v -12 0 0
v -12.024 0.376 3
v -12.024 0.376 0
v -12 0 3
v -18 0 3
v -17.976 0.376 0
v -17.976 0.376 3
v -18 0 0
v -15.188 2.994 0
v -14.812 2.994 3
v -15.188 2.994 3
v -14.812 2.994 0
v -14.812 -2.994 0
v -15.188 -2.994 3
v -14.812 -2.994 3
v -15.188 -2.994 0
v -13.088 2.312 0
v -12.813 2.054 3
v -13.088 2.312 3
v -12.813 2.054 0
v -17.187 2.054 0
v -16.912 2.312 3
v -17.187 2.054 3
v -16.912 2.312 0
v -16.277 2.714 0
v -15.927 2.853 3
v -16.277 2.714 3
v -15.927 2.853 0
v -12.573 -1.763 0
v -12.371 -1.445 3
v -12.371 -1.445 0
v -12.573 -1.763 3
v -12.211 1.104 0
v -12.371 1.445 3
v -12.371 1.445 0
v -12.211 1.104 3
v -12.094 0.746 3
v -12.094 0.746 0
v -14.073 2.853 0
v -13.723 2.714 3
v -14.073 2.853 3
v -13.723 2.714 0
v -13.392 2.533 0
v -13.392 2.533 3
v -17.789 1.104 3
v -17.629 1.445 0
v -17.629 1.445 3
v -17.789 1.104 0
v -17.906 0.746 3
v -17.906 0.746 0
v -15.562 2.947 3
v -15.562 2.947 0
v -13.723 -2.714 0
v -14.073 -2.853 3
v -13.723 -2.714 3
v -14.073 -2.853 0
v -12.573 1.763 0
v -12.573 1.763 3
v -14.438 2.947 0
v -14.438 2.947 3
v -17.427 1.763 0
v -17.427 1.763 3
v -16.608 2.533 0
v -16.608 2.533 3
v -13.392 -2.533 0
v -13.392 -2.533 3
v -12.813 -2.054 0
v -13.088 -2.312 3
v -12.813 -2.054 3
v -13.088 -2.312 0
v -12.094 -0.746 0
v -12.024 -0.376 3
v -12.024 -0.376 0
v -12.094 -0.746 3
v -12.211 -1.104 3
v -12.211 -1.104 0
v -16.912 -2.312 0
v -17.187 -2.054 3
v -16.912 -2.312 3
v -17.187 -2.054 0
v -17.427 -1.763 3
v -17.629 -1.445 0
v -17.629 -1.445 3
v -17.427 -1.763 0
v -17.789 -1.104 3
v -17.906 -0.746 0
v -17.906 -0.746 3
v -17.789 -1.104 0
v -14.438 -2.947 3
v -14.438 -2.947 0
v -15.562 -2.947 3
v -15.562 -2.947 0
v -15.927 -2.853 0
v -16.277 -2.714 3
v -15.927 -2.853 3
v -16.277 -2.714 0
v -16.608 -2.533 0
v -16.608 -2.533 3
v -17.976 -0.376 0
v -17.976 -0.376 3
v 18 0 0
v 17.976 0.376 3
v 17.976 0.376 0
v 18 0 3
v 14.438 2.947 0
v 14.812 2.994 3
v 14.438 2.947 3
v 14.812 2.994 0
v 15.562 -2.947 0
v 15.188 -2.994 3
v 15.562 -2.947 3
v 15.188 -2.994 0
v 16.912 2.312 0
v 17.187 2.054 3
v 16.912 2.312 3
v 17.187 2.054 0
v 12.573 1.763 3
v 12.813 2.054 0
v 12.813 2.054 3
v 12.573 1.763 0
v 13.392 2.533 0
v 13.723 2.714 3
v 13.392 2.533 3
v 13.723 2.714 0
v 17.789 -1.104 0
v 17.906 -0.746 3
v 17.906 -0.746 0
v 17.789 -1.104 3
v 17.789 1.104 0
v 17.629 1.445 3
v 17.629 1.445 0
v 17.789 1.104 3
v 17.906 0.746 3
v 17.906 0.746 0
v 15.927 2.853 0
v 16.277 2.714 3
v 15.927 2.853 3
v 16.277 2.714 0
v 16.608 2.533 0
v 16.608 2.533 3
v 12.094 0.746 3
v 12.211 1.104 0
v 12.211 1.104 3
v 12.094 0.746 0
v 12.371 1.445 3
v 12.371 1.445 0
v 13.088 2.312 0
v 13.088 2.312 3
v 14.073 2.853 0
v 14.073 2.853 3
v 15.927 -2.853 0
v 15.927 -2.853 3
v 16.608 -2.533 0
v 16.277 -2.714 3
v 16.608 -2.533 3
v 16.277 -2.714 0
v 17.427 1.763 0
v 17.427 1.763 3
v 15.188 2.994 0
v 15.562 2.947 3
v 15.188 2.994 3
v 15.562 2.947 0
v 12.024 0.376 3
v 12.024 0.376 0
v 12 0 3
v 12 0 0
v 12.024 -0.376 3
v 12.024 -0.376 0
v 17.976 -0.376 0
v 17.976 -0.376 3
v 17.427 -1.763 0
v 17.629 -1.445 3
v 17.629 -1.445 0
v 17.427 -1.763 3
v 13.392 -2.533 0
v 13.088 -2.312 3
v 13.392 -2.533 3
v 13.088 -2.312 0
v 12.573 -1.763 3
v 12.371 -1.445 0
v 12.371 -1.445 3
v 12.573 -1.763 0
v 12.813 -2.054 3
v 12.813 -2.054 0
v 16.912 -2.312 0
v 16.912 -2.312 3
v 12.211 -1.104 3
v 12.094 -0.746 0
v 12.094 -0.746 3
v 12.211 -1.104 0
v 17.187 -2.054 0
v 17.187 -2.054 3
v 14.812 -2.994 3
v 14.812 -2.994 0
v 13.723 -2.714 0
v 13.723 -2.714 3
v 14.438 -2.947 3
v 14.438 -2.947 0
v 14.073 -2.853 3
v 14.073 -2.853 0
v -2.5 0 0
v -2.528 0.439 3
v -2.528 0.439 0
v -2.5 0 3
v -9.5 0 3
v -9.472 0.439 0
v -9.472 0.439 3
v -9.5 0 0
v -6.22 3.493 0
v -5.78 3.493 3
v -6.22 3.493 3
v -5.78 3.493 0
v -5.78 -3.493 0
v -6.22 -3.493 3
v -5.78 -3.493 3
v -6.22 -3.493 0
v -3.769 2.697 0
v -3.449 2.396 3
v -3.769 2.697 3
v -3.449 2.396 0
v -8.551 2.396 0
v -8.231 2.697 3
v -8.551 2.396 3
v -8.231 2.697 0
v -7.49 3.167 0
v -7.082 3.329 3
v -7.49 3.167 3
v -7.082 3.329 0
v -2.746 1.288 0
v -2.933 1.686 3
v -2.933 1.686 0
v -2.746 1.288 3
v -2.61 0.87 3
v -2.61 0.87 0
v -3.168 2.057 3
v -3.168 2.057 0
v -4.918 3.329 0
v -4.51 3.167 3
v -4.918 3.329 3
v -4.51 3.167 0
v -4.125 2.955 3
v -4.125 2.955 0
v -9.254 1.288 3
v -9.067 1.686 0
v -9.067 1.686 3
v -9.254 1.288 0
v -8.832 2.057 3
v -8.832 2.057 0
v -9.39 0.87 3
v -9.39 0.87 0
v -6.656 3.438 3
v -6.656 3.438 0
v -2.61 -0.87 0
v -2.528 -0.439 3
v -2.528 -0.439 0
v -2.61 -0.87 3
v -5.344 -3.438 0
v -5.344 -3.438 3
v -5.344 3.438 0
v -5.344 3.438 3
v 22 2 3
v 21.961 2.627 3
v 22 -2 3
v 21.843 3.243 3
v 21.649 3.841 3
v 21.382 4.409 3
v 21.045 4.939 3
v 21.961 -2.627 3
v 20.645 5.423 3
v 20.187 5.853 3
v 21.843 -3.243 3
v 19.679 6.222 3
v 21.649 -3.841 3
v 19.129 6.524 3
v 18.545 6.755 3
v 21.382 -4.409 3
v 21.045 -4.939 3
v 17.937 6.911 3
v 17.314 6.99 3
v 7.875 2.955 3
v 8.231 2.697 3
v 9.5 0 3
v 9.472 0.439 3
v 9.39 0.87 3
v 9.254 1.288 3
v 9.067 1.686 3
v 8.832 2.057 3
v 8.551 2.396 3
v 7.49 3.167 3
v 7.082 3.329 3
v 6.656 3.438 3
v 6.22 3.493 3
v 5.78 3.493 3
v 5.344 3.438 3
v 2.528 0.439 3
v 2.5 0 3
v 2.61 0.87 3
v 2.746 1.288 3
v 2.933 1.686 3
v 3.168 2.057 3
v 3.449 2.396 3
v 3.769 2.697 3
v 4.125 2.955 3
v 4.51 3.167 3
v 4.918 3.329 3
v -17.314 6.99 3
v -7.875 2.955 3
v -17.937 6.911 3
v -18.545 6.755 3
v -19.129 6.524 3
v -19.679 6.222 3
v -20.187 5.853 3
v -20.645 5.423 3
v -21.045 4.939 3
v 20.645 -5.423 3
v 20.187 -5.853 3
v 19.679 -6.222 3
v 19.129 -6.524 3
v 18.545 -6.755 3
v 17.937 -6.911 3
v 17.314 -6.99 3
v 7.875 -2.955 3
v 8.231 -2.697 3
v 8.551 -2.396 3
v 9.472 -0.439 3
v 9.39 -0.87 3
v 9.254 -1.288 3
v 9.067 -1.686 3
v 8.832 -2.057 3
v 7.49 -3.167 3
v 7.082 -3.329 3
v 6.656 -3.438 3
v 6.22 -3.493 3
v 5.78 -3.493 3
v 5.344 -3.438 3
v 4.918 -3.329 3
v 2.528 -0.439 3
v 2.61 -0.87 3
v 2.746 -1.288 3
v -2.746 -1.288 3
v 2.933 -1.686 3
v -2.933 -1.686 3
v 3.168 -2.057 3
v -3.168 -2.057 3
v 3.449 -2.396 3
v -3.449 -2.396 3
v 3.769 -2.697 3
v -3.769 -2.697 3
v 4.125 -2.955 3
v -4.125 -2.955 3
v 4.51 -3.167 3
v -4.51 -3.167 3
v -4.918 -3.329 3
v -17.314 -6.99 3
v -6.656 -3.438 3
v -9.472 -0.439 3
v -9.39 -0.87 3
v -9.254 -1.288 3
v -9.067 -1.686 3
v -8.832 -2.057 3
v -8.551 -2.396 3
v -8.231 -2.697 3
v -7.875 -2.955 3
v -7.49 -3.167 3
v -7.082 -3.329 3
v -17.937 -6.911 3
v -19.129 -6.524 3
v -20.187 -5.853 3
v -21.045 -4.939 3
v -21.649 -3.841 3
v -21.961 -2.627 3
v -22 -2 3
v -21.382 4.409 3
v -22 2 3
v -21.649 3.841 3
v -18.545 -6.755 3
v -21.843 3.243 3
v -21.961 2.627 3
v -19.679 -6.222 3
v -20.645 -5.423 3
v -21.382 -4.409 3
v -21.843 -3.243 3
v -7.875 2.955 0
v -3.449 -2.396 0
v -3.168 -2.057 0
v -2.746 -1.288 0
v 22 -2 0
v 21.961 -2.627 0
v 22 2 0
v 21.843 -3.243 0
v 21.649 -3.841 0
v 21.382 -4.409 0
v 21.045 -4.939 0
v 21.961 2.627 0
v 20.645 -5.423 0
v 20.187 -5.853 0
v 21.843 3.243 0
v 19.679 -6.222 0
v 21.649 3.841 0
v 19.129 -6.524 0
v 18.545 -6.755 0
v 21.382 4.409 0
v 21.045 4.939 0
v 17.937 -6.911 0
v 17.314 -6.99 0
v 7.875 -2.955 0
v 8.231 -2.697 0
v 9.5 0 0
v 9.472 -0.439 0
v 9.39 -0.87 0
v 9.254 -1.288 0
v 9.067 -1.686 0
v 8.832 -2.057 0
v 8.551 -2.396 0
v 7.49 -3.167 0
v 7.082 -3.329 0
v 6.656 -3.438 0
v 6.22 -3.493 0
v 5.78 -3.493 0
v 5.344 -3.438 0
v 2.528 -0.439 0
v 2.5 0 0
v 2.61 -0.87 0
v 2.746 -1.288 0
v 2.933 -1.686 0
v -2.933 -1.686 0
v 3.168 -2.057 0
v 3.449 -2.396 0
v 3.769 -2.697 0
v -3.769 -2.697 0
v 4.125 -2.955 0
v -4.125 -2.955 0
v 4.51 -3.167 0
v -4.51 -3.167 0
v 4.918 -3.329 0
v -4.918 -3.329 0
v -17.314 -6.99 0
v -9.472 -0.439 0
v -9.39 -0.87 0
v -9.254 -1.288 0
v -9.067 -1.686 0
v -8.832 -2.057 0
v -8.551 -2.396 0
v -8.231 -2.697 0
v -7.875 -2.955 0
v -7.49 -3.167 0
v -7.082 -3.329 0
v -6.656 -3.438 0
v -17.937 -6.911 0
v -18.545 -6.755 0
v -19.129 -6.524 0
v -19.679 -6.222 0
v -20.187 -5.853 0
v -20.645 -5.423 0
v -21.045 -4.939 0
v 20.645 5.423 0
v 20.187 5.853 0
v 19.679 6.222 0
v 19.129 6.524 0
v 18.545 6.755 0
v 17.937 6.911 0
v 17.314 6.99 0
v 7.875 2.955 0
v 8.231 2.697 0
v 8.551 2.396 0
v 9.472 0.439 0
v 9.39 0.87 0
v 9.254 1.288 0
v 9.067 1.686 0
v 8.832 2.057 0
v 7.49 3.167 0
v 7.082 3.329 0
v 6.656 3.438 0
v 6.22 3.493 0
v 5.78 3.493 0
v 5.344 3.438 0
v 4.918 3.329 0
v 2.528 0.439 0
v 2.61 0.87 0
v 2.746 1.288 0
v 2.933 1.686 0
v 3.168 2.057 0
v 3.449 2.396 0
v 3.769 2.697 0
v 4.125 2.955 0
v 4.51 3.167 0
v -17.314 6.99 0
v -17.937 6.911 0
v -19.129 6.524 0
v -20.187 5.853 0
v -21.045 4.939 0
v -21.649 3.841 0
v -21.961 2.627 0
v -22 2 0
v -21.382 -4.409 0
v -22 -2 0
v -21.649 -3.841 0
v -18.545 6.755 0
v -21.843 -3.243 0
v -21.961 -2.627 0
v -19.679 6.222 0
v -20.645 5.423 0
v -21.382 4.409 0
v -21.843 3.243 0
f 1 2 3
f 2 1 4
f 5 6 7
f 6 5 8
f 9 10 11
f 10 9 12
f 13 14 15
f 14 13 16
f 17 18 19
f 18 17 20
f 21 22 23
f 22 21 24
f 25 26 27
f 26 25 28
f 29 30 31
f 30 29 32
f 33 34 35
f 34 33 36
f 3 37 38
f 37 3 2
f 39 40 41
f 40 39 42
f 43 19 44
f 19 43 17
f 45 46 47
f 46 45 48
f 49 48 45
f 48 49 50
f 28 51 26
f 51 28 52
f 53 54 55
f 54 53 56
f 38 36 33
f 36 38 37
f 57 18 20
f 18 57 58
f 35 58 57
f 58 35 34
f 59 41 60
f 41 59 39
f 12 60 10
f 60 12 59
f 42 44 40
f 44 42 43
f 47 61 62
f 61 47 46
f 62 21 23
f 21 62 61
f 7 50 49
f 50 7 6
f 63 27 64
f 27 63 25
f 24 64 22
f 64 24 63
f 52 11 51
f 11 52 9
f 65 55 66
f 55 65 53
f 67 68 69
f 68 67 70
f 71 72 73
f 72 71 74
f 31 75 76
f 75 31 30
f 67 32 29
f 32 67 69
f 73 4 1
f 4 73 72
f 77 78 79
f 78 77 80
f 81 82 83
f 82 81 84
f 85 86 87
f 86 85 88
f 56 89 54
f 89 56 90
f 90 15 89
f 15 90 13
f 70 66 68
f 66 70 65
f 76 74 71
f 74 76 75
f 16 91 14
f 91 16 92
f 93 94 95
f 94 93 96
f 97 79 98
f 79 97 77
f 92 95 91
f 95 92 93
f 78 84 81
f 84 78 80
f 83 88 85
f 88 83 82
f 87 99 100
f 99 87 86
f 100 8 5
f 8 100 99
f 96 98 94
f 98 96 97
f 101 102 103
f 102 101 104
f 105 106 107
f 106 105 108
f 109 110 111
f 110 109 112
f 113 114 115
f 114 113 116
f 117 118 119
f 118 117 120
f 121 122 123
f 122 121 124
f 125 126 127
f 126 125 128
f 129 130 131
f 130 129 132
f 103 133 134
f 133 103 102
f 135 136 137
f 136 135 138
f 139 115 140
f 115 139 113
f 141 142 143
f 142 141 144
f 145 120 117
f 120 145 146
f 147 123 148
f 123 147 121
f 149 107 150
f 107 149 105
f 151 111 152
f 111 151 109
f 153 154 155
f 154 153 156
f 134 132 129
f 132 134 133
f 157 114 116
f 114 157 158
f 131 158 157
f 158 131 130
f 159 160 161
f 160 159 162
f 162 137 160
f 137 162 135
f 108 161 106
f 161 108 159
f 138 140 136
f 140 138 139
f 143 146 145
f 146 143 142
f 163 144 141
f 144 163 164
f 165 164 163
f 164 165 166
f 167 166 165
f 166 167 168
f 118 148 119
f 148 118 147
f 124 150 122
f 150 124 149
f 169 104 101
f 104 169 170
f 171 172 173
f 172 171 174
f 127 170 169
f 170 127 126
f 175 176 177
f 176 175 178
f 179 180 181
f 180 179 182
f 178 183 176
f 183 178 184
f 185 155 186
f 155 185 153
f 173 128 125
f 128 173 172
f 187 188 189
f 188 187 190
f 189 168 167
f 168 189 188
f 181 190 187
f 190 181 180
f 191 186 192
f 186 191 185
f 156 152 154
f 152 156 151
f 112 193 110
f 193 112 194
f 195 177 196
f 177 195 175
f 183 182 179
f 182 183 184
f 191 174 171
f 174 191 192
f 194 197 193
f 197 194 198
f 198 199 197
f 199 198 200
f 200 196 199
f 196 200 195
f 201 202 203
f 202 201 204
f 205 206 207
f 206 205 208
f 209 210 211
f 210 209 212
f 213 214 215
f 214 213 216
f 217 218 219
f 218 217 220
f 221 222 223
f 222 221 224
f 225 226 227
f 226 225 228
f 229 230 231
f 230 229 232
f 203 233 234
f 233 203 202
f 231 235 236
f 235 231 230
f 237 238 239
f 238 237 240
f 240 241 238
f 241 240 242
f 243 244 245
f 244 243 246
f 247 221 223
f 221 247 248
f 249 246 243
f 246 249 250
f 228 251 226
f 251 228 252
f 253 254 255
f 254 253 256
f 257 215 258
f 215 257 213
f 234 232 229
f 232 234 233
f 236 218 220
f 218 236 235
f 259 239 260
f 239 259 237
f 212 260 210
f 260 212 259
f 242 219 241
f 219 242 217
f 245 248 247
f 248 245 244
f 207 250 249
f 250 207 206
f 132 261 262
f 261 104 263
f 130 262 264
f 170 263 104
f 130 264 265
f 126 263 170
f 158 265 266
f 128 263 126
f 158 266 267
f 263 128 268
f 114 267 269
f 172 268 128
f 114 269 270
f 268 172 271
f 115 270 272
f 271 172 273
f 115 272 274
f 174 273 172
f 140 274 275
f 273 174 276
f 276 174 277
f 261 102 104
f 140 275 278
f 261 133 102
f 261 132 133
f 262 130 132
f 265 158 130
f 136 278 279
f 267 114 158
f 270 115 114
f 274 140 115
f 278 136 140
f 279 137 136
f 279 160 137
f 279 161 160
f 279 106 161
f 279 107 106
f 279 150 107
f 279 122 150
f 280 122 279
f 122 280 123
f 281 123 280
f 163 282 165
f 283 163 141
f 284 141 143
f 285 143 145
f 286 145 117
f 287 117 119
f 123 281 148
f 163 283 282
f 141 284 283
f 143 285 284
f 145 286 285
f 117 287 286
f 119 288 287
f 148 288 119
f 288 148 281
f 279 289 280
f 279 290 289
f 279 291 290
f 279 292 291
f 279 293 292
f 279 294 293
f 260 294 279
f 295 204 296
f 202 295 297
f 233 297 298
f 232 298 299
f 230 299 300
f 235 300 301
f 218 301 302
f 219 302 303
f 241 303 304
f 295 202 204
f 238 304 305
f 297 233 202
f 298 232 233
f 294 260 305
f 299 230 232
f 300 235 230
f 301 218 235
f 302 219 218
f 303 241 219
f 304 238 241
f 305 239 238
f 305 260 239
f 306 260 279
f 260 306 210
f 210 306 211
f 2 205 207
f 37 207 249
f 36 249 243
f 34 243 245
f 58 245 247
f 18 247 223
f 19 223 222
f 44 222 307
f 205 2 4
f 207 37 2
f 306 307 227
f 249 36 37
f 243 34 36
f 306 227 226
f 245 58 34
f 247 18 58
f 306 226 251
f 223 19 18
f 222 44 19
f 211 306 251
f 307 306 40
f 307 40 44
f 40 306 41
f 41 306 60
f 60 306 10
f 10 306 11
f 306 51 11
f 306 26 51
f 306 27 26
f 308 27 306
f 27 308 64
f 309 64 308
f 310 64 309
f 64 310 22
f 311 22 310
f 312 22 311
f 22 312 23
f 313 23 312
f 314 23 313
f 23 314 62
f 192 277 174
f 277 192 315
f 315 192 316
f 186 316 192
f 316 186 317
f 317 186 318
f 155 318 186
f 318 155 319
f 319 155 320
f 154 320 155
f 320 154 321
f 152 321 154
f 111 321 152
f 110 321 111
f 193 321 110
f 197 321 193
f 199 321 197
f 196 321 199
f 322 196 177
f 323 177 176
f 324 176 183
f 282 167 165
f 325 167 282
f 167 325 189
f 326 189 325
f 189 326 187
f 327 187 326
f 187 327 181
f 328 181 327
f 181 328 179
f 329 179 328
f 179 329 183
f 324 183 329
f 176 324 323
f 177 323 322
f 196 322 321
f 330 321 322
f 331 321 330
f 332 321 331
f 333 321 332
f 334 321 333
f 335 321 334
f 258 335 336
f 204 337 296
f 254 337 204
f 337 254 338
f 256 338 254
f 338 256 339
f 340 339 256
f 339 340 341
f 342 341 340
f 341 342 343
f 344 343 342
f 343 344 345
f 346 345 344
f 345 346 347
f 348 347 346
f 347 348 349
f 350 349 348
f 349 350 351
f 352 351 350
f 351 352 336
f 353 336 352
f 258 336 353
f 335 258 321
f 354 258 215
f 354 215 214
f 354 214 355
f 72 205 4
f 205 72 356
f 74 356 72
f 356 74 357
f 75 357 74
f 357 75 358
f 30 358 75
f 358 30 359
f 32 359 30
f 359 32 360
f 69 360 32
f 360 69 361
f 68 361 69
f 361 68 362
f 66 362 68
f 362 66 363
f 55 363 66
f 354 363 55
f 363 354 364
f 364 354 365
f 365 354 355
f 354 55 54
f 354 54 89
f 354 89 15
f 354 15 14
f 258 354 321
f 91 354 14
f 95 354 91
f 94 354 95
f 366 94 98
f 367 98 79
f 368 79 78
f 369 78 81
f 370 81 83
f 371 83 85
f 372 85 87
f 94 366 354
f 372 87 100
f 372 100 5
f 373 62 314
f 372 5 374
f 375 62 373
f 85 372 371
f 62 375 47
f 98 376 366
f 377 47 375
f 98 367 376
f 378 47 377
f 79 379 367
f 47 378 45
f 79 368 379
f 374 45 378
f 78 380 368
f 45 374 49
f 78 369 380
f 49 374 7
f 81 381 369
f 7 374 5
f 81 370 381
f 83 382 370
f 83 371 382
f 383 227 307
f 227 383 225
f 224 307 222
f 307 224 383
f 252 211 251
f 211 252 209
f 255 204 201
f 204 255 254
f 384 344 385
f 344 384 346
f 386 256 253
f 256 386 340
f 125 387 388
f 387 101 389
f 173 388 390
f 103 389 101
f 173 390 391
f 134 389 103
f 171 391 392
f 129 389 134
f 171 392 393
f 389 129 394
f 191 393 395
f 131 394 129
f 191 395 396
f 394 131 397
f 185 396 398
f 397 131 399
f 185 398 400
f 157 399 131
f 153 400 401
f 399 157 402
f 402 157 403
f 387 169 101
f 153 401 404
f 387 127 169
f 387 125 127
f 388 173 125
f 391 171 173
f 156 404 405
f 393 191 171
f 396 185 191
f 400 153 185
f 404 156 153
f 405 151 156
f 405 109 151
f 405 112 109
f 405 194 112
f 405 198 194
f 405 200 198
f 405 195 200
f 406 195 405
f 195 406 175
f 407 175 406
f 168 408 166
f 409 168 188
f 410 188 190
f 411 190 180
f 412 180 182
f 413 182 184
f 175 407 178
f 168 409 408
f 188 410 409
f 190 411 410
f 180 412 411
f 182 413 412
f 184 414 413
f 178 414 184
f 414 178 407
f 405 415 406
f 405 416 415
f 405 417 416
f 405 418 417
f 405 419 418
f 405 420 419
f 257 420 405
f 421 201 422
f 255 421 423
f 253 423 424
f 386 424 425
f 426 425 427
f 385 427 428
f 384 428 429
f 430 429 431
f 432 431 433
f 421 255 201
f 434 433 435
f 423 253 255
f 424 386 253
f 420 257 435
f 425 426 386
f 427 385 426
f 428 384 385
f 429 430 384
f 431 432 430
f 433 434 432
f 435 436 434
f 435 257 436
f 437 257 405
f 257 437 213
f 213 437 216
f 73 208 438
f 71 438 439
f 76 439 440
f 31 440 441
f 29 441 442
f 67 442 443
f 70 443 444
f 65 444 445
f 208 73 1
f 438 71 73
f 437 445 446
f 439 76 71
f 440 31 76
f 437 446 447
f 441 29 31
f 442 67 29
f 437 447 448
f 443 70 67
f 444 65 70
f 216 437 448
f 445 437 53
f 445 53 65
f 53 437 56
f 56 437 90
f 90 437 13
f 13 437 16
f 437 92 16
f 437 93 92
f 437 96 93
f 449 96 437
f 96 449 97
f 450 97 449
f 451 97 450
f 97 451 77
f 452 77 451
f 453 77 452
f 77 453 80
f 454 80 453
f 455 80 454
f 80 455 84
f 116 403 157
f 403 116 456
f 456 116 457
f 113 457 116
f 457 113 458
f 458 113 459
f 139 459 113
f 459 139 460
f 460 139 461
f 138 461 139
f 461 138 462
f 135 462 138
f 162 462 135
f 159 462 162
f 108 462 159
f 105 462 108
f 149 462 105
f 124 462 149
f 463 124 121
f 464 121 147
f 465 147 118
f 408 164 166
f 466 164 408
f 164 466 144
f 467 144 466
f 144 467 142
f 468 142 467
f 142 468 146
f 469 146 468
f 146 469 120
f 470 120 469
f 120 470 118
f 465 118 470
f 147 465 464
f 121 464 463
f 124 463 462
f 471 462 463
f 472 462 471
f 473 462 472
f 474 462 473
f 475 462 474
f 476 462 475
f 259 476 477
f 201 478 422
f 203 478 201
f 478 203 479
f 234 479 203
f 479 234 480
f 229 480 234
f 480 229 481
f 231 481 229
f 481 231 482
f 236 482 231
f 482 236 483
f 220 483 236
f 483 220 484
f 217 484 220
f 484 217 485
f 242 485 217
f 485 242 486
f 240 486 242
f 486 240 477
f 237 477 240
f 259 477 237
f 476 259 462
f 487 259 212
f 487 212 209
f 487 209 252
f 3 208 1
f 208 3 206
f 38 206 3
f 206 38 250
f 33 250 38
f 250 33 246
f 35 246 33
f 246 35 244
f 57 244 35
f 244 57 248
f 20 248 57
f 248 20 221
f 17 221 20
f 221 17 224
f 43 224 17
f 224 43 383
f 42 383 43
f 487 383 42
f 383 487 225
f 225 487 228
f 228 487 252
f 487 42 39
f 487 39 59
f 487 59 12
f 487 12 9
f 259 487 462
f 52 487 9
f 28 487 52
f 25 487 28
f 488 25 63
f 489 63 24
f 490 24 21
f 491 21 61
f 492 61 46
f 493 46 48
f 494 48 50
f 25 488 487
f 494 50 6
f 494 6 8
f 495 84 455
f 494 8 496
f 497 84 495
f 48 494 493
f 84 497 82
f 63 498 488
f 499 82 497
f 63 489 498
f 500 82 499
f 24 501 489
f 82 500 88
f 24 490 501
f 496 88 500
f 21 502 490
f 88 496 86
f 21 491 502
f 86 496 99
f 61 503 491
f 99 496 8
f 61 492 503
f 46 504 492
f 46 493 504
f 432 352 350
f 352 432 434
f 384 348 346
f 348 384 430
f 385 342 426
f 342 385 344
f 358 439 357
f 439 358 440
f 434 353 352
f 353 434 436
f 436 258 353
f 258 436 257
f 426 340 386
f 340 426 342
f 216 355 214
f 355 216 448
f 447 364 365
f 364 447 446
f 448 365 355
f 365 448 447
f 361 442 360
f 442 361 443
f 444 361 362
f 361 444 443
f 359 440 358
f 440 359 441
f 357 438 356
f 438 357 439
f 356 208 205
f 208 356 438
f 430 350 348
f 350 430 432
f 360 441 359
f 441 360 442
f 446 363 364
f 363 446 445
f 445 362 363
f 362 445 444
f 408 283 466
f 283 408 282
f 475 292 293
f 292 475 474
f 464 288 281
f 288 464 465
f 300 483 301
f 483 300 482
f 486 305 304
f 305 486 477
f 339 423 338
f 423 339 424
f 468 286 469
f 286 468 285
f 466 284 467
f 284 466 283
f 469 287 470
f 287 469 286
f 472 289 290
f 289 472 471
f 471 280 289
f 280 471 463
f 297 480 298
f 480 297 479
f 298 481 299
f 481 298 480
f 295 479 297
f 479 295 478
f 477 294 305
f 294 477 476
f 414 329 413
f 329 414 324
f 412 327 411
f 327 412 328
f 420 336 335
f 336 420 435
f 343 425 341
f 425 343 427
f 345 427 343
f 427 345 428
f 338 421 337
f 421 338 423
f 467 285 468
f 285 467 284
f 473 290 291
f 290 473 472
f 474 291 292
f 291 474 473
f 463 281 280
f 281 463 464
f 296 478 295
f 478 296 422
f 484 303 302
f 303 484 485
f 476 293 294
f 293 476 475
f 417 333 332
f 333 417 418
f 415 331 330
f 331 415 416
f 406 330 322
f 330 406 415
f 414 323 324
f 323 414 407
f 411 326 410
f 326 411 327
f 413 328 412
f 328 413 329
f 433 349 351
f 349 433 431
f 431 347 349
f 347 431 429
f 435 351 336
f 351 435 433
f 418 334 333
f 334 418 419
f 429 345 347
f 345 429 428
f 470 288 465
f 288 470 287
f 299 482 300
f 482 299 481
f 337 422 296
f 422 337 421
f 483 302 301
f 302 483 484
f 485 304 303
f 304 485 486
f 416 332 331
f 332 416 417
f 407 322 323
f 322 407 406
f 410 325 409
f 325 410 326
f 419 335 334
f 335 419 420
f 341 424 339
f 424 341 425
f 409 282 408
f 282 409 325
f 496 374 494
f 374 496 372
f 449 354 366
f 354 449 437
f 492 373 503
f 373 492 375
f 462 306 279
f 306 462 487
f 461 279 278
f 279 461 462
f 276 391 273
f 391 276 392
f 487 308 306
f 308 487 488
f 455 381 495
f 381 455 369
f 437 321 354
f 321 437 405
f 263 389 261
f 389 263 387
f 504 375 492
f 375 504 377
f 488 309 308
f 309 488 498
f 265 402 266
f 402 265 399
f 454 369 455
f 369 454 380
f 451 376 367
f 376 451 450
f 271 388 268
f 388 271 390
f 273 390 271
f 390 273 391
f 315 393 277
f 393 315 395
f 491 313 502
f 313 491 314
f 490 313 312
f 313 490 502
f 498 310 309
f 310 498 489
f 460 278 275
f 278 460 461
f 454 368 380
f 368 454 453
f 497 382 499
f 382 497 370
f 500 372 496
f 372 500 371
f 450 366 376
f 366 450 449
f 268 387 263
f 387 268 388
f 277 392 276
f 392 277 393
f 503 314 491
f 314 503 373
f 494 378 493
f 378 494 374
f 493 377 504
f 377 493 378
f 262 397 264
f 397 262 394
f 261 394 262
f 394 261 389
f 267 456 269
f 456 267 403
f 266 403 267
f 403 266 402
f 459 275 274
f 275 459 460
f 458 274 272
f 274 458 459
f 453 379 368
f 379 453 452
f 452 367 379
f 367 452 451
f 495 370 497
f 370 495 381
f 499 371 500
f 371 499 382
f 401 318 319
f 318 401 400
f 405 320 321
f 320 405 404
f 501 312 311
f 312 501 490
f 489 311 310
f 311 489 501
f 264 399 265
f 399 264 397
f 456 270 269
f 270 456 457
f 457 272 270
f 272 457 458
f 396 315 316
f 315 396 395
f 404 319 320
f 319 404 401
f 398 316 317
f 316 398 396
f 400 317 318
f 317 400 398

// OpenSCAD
$fn = 50;


difference() {
	union() {
		hull() {
			translate(v = [-17.0000000000, 2.0000000000, 0]) {
				cylinder(h = 3, r = 5);
			}
			translate(v = [17.0000000000, 2.0000000000, 0]) {
				cylinder(h = 3, r = 5);
			}
			translate(v = [-17.0000000000, -2.0000000000, 0]) {
				cylinder(h = 3, r = 5);
			}
			translate(v = [17.0000000000, -2.0000000000, 0]) {
				cylinder(h = 3, r = 5);
			}
		}
	}
	union() {
		#translate(v = [-15.0000000000, 0.0000000000, 0]) {
			cylinder(h = 3, r = 3.0000000000);
		}
		#translate(v = [15.0000000000, 0.0000000000, 0]) {
			cylinder(h = 3, r = 3.0000000000);
		}
		#translate(v = [-15.0000000000, 0.0000000000, -100.0000000000]) {
			cylinder(h = 200, r = 3.0000000000);
		}
		#translate(v = [-15.0000000000, 0.0000000000, -100.0000000000]) {
			cylinder(h = 200, r = 3.0000000000);
		}
		#translate(v = [15.0000000000, 0.0000000000, -100.0000000000]) {
			cylinder(h = 200, r = 3.0000000000);
		}
		#translate(v = [15.0000000000, 0.0000000000, -100.0000000000]) {
			cylinder(h = 200, r = 3.0000000000);
		}
		#translate(v = [-15.0000000000, 0.0000000000, 0]) {
			cylinder(h = 3, r = 1.5000000000);
		}
		#translate(v = [15.0000000000, 0.0000000000, 0]) {
			cylinder(h = 3, r = 1.5000000000);
		}
		#translate(v = [-15.0000000000, 0.0000000000, 0]) {
			cylinder(h = 3, r = 1.5000000000);
		}
		#translate(v = [15.0000000000, 0.0000000000, 0]) {
			cylinder(h = 3, r = 1.5000000000);
		}
		#translate(v = [-15.0000000000, 0.0000000000, 0]) {
			cylinder(h = 3, r = 1.5000000000);
		}
		#translate(v = [15.0000000000, 0.0000000000, 0]) {
			cylinder(h = 3, r = 1.5000000000);
		}
		#translate(v = [-6.0000000000, 0, 0]) {
			cylinder(h = 3, r = 3.5000000000);
		}
		#translate(v = [6.0000000000, 0, 0]) {
			cylinder(h = 3, r = 3.5000000000);
		}
	}
}
